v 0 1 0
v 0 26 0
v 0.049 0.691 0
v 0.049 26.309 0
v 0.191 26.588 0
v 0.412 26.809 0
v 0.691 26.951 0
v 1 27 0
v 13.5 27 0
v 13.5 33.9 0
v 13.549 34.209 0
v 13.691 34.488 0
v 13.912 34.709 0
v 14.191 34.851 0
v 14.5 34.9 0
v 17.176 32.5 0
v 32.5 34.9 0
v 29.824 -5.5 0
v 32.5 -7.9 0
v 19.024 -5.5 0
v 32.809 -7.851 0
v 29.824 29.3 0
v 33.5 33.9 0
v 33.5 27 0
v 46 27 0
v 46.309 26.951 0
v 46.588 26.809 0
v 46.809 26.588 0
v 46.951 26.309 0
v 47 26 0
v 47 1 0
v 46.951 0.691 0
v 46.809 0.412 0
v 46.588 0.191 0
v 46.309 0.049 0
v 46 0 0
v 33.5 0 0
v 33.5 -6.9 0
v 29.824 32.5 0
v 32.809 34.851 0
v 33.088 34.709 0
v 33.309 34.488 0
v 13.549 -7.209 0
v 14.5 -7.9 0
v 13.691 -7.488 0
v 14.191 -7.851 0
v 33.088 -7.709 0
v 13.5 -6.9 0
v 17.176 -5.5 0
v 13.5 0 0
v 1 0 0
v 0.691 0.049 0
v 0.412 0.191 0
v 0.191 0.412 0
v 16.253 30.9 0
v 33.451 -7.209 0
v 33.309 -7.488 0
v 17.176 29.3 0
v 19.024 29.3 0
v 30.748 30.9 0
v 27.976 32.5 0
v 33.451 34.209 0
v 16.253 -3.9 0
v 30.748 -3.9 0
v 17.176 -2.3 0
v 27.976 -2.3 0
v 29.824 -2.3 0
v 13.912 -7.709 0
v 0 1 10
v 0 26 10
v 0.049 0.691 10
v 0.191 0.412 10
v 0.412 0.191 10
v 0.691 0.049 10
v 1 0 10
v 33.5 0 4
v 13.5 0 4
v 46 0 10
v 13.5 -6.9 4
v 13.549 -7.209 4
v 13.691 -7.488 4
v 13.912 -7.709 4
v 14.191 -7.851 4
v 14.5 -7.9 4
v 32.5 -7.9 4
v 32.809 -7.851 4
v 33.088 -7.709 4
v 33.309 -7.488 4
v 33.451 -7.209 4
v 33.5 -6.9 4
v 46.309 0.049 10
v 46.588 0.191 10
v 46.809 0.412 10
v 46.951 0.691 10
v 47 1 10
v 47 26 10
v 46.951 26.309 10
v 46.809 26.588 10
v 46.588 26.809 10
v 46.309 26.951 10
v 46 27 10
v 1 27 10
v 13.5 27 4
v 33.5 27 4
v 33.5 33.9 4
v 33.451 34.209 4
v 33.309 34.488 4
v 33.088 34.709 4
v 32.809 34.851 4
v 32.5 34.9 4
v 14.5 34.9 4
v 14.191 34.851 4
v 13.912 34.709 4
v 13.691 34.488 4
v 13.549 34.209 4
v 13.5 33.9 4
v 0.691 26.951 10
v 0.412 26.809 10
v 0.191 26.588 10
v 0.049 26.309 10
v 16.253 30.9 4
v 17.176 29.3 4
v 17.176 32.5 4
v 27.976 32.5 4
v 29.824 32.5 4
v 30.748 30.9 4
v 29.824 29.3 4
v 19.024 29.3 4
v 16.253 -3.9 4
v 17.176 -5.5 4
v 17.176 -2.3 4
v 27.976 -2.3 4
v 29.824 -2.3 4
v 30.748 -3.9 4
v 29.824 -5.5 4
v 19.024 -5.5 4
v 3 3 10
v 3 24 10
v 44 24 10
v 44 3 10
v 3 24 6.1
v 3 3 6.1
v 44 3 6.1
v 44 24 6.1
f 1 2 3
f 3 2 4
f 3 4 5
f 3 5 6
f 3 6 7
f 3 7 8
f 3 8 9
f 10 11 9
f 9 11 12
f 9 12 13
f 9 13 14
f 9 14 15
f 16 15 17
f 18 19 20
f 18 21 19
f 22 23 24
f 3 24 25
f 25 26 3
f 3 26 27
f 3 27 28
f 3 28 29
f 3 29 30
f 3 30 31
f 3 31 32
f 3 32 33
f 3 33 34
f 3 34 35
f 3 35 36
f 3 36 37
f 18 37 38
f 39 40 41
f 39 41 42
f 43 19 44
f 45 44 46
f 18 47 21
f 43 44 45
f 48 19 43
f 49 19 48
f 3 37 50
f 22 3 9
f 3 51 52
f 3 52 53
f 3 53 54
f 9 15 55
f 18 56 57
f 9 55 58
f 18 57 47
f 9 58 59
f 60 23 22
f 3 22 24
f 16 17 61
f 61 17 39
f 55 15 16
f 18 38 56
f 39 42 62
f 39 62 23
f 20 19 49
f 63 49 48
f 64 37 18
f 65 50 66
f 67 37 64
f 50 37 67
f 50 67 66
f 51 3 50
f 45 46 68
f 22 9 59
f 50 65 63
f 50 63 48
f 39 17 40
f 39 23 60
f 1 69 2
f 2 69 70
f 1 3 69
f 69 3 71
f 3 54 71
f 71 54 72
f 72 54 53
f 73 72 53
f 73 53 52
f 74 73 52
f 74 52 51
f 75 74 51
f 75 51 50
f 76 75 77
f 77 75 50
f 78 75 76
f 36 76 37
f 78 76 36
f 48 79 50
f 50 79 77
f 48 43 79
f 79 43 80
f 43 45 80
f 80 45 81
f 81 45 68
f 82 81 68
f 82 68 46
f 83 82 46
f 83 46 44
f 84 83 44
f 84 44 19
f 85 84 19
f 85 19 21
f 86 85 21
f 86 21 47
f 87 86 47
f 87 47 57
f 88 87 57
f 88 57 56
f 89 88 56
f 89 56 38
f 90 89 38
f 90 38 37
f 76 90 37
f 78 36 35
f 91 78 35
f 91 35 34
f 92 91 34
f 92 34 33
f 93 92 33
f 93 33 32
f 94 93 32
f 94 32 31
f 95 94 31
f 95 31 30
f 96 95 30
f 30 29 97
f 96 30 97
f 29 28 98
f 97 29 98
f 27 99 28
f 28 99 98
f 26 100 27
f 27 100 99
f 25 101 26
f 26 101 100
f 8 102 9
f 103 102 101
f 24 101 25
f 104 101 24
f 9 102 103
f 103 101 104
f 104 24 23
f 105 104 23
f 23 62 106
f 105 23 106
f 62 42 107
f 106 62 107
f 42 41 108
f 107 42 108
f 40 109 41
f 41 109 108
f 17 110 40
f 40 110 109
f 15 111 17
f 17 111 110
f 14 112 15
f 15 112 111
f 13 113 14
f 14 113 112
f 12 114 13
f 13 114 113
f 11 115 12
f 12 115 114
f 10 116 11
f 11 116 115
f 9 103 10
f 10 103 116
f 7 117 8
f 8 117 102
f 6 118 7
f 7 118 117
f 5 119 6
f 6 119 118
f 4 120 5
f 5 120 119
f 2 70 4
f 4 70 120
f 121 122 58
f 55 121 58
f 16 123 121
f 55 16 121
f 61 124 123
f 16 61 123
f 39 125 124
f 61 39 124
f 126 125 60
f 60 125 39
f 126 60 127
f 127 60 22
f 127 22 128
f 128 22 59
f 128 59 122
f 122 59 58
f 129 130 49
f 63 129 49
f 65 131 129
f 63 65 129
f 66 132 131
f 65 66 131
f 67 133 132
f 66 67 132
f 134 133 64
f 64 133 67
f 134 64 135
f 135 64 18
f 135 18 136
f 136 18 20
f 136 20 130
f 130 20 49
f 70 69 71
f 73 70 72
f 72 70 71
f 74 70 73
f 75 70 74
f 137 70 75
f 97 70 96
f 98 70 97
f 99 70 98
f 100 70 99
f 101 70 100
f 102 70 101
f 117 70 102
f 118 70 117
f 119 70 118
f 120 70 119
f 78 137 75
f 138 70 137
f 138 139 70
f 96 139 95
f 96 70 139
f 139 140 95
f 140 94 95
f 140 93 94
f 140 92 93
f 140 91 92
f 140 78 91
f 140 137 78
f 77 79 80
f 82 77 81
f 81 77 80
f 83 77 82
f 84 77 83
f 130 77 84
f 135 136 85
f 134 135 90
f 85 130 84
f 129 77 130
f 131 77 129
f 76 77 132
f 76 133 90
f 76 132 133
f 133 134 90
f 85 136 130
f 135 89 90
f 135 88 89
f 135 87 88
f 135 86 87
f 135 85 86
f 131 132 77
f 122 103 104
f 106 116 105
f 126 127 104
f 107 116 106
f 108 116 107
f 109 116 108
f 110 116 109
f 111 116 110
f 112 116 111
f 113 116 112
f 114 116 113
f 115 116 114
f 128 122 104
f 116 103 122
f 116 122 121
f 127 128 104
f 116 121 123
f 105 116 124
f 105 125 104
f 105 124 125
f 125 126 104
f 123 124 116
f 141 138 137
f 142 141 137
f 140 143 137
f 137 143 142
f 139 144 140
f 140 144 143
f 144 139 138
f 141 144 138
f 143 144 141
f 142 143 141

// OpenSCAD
//-----------------------------------------------------------------------------------
// holder for optical endstop (Gen7 v1.1 opto endstop, veroboard version)
// for my custom Mendel90
// for the y min endstop (the endstop holder is screwed onto the base plate)
// (c) 2013 by Stemer114
// License: licensed under the Creative Commons - GNU GPL license.
//          http://www.gnu.org/licenses/gpl-2.0.html
//-----------------------------------------------------------------------------------

//-----------------------------------------------------------------------------------
//display settings
//-----------------------------------------------------------------------------------

//color settings

//-----------------------------------------------------------------------------------
//global configuration settings
//-----------------------------------------------------------------------------------
de = 0.1; //delta param, so differences are scaled and do not become manifold
fn_hole = 12;  //fn setting for round holes/bores (polyhole)
ex = 0;  //offset for Explosivdarstellung, set to 0 for none

//-----------------------------------------------------------------------------------
//configuration settings
//-----------------------------------------------------------------------------------

//endstop pcb size plus tolerance
P1 = 41;
P2 = 21;
P3 = 3;  //frame width
P4 = 8;  //fixing bracket width
P5 = 20; //fixing bracket length
P6 = 3.2; //fixing slot width
P7 = 14;  //fixing slot length

P10 = 10;  //holder thickness
P11 = 4;   //depth of pcb bed
P12 = 4;   //fixing bracket thickness

P20 = 1;   //corner radius for large block

//-----------------------------------------------------------------------------------
// libraries
//-----------------------------------------------------------------------------------
//include <lib/common.scad>

//-----------------------------------------------------------------------------------
// main rendering
//-----------------------------------------------------------------------------------


//transparent 10mm cube for debugging
//translate([0, 0, -10])
//% cube(10, 10, 10);

HolderBase();

//move the holders de into the base, so we are surly manifold
translate([(P1+2*P3-P5)/2, -P4+de, 0])
    Bracket();

//ditto
translate([P5+(P1+2*P3-P5)/2, P4+P2+2*P3-de, 0])
rotate([0, 0, 180])
    Bracket();


//-----------------------------------------------------------------------------------
// modules
//-----------------------------------------------------------------------------------

module HolderBase()
{
    difference()
    {
        union()
        {
            //cube([P3+P1+P3, P3+P2+P3, P10], center=false);
            CubeRounded(P3+P1+P3, P3+P2+P3, P10, P20, corners=[1, 1, 1, 1]);

        }

        union()
        {
            translate([P3, P3, P10-P11+de])
            cube([P1, P2, P11+de], center=false);

        }
    }
}

module Bracket()
{
    difference()
    {
        union()
        {
            CubeRounded(P5, P4, P12, P20, corners=[1, 1, 0, 0]);
            //cube([P5, P4, P12], center=false);
        }

        union()
        {
            hull() {
            translate([(P5-P7)/2+P6/2, P4/2, -de])
                polyhole(P12+2*de, P6);
            translate([(P5-P7)/2+P7-P6/2, P4/2, -de])
                polyhole(P12+2*de, P6);
            }


        }
    }
}


//-----------------------------------------------------------------------------------
// utility functions
//-----------------------------------------------------------------------------------

//polyhole by nophead
//http://hydraraptor.blogspot.de/2011/02/polyholes.html
module polyhole(h, d) {
    n = max(round(2 * d),3);
    rotate([0,0,180])
        cylinder(h = h, r = (d / 2) / cos (180 / n), $fn = n);
}


/* creates a cube with rounded corners in z direction
   with the corners array it can be specified, which corners are rounded
   (default: all)
   */
module CubeRounded(x, y, z, r, corners=[1, 1, 1, 1]) {
    $fn=20;

    hull() {
        //lower left
        translate([r, r, 0]) 
            CubeCorner(r, z, corners[0]);

        //lower right
        translate([x-r, r, 0])
            CubeCorner(r, z, corners[1]);

        //upper left
        translate([r, y-r, 0])
            CubeCorner(r, z, corners[2]);

        //upper right
        translate([x-r, y-r, 0])
            CubeCorner(r, z, corners[3]);
    }
}

module CubeCorner(r, z, cornermode) {
    if (cornermode==1) {
        cylinder(h=z, r=r);
    } else {
        translate([0, 0, z/2])
            cube([2*r, 2*r, z], center=true);
    }
} 
